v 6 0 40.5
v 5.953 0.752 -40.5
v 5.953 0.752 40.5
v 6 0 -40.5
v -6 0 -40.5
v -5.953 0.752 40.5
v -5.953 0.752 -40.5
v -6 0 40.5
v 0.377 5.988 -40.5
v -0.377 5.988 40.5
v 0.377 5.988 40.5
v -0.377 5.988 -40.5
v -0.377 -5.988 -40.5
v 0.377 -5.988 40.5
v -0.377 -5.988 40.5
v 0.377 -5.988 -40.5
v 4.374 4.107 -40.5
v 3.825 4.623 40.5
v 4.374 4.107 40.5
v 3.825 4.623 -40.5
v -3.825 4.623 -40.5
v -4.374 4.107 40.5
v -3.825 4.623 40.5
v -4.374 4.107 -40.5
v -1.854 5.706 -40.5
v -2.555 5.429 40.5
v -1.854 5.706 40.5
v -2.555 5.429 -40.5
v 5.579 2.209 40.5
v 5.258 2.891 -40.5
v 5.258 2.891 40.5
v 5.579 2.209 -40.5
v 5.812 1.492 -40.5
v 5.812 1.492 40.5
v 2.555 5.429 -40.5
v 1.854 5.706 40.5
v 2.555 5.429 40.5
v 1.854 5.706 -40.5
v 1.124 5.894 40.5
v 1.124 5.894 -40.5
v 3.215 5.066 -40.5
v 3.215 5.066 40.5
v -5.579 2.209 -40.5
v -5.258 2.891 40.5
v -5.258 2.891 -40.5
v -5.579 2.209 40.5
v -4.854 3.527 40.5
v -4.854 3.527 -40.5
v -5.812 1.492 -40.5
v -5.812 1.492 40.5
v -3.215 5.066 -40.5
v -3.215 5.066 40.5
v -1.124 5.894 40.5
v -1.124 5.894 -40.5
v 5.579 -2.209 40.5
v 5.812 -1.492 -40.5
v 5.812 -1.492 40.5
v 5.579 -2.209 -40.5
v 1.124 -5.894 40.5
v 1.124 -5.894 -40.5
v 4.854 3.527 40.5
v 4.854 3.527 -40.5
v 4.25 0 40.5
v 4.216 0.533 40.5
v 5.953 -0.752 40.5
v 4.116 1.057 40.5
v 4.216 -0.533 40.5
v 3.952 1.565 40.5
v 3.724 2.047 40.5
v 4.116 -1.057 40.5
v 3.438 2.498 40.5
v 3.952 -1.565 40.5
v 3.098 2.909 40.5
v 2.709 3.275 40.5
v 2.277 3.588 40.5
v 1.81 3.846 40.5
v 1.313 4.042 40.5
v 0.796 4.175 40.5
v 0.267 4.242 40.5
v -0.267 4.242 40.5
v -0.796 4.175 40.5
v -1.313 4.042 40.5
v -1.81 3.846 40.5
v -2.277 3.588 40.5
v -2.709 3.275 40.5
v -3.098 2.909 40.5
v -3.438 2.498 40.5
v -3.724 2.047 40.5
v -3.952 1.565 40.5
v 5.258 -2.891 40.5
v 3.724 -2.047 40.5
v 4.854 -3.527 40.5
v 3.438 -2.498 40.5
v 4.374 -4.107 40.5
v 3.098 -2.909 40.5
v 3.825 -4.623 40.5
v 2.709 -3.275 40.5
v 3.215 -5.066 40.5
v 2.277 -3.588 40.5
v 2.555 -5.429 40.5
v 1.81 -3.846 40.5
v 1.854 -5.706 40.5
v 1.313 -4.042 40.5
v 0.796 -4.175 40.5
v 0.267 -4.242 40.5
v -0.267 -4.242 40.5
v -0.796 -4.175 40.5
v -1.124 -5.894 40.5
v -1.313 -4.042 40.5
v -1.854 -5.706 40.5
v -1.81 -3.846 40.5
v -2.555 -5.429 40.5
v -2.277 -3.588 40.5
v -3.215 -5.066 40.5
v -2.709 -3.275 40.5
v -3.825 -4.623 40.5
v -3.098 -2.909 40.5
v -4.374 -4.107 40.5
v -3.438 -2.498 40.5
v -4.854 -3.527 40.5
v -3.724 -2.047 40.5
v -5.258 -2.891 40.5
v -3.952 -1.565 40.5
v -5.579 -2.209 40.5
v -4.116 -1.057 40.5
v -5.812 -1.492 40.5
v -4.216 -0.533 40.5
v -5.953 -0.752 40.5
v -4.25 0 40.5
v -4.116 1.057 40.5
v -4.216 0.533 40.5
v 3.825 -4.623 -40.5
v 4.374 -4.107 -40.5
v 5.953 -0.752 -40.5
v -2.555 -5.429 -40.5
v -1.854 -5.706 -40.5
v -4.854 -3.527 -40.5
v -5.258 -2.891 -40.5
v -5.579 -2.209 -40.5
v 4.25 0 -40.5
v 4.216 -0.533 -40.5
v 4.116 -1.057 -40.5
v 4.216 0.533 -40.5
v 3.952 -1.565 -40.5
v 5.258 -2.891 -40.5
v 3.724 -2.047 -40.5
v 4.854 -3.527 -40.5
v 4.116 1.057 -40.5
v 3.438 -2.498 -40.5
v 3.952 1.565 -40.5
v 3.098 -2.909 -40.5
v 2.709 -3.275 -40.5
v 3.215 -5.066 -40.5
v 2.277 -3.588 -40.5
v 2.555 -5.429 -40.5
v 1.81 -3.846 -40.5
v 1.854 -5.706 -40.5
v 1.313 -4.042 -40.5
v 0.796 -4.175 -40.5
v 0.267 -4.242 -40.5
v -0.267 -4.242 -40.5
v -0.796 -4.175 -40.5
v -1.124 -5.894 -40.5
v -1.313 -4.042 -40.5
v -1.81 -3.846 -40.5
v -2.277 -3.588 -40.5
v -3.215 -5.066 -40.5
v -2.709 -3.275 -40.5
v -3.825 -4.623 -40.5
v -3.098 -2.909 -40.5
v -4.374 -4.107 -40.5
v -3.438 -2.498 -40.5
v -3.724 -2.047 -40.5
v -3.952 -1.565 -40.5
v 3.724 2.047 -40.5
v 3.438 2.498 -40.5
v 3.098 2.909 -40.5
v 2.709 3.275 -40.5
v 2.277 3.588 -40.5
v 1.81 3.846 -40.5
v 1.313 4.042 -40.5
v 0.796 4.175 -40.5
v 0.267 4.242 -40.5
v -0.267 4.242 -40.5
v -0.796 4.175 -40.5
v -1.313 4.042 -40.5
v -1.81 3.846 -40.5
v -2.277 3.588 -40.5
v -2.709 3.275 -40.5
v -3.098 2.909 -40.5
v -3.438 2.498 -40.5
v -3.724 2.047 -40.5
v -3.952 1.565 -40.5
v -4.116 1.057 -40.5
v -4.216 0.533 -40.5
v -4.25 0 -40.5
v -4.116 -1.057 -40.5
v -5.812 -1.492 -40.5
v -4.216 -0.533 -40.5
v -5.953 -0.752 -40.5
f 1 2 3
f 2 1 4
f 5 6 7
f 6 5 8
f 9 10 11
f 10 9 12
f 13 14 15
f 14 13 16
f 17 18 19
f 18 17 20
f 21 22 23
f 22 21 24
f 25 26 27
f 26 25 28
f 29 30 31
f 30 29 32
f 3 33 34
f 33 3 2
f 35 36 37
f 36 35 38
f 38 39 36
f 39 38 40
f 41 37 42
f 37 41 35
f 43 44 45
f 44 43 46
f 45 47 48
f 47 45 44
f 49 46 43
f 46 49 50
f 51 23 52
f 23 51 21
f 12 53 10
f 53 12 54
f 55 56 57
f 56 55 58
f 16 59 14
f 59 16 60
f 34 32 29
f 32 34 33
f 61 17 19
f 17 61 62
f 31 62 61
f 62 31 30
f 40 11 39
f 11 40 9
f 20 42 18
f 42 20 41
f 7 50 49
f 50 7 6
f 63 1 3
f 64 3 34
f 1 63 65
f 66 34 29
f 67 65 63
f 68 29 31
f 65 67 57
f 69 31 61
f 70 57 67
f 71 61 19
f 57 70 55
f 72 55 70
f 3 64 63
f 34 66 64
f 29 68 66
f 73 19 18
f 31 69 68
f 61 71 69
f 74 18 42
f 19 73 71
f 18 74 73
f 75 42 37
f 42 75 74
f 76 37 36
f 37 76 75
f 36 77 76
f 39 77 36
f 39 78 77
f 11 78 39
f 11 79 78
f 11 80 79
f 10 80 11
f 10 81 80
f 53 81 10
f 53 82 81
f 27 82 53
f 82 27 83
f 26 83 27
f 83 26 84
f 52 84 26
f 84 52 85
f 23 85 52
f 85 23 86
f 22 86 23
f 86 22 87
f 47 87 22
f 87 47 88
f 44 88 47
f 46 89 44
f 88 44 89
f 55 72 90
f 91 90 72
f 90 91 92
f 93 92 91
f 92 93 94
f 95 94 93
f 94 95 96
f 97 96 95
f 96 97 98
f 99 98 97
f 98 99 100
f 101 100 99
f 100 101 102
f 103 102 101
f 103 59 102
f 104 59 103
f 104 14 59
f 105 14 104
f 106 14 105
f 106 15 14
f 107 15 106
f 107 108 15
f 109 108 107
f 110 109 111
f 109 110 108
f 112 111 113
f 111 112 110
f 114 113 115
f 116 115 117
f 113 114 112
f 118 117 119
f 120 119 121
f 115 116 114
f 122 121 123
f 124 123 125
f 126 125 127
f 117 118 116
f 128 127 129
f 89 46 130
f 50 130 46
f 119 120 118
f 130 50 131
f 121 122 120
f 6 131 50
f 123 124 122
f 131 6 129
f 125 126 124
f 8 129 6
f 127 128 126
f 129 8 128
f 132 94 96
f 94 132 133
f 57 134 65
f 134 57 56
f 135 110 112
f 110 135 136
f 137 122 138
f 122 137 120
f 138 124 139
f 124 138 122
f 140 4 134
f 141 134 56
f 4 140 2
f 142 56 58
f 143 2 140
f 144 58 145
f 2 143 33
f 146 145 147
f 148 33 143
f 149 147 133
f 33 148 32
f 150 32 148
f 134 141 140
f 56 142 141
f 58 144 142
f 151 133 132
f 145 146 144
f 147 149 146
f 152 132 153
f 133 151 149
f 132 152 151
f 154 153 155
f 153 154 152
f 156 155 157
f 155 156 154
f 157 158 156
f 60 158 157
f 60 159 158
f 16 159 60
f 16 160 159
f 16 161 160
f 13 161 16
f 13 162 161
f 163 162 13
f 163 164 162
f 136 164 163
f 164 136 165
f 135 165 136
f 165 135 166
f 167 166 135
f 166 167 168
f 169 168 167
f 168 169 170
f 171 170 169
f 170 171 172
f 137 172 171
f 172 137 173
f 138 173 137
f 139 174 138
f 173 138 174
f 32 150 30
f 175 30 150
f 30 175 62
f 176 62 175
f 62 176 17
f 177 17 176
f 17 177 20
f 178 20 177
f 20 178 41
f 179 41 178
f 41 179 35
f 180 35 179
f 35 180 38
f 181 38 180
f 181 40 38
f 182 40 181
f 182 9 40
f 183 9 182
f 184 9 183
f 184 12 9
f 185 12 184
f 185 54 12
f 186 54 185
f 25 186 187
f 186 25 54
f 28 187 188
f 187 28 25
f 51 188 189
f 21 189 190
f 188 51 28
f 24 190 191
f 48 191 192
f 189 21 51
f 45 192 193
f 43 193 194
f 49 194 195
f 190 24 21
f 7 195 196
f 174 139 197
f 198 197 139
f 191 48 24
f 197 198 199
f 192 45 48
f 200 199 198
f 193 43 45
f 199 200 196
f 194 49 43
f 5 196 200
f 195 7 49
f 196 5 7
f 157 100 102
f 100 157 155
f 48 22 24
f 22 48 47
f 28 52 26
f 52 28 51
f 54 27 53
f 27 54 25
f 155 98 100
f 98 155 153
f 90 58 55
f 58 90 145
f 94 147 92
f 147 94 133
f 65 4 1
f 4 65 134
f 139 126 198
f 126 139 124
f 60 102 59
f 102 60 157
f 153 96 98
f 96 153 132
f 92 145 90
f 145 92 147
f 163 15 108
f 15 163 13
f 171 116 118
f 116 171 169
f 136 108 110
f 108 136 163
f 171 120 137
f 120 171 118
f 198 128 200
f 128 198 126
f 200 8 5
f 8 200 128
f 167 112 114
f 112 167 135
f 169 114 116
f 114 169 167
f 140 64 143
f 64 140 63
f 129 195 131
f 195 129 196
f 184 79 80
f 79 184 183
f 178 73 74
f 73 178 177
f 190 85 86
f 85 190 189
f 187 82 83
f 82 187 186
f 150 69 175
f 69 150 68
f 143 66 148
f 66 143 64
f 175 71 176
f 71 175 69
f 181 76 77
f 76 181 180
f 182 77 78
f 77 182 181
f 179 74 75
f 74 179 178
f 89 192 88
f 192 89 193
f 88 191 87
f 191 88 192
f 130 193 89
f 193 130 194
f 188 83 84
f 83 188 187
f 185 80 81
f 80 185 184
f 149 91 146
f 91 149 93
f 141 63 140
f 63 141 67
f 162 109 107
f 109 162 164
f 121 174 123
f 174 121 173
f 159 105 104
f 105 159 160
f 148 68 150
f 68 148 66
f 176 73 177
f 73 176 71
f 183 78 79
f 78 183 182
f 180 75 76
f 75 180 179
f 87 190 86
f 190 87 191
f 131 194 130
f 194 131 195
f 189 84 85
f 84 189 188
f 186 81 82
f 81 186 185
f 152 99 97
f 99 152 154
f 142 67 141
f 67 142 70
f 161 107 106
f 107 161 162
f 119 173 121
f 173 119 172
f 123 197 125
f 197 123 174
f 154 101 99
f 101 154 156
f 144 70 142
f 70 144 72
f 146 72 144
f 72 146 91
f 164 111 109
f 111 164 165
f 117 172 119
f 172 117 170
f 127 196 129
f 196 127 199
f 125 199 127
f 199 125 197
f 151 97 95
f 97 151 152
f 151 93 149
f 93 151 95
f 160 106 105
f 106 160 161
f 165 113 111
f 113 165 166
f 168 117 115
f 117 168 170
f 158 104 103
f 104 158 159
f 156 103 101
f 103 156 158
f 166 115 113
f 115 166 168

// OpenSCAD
$fn = 50;


difference() {
	union() {
		translate(v = [0, 0, -40.5000000000]) {
			cylinder(h = 81, r = 6.0000000000);
		}
	}
	union() {
		translate(v = [0, 0, -100.0000000000]) {
			cylinder(h = 200, r = 4.2500000000);
		}
	}
}
